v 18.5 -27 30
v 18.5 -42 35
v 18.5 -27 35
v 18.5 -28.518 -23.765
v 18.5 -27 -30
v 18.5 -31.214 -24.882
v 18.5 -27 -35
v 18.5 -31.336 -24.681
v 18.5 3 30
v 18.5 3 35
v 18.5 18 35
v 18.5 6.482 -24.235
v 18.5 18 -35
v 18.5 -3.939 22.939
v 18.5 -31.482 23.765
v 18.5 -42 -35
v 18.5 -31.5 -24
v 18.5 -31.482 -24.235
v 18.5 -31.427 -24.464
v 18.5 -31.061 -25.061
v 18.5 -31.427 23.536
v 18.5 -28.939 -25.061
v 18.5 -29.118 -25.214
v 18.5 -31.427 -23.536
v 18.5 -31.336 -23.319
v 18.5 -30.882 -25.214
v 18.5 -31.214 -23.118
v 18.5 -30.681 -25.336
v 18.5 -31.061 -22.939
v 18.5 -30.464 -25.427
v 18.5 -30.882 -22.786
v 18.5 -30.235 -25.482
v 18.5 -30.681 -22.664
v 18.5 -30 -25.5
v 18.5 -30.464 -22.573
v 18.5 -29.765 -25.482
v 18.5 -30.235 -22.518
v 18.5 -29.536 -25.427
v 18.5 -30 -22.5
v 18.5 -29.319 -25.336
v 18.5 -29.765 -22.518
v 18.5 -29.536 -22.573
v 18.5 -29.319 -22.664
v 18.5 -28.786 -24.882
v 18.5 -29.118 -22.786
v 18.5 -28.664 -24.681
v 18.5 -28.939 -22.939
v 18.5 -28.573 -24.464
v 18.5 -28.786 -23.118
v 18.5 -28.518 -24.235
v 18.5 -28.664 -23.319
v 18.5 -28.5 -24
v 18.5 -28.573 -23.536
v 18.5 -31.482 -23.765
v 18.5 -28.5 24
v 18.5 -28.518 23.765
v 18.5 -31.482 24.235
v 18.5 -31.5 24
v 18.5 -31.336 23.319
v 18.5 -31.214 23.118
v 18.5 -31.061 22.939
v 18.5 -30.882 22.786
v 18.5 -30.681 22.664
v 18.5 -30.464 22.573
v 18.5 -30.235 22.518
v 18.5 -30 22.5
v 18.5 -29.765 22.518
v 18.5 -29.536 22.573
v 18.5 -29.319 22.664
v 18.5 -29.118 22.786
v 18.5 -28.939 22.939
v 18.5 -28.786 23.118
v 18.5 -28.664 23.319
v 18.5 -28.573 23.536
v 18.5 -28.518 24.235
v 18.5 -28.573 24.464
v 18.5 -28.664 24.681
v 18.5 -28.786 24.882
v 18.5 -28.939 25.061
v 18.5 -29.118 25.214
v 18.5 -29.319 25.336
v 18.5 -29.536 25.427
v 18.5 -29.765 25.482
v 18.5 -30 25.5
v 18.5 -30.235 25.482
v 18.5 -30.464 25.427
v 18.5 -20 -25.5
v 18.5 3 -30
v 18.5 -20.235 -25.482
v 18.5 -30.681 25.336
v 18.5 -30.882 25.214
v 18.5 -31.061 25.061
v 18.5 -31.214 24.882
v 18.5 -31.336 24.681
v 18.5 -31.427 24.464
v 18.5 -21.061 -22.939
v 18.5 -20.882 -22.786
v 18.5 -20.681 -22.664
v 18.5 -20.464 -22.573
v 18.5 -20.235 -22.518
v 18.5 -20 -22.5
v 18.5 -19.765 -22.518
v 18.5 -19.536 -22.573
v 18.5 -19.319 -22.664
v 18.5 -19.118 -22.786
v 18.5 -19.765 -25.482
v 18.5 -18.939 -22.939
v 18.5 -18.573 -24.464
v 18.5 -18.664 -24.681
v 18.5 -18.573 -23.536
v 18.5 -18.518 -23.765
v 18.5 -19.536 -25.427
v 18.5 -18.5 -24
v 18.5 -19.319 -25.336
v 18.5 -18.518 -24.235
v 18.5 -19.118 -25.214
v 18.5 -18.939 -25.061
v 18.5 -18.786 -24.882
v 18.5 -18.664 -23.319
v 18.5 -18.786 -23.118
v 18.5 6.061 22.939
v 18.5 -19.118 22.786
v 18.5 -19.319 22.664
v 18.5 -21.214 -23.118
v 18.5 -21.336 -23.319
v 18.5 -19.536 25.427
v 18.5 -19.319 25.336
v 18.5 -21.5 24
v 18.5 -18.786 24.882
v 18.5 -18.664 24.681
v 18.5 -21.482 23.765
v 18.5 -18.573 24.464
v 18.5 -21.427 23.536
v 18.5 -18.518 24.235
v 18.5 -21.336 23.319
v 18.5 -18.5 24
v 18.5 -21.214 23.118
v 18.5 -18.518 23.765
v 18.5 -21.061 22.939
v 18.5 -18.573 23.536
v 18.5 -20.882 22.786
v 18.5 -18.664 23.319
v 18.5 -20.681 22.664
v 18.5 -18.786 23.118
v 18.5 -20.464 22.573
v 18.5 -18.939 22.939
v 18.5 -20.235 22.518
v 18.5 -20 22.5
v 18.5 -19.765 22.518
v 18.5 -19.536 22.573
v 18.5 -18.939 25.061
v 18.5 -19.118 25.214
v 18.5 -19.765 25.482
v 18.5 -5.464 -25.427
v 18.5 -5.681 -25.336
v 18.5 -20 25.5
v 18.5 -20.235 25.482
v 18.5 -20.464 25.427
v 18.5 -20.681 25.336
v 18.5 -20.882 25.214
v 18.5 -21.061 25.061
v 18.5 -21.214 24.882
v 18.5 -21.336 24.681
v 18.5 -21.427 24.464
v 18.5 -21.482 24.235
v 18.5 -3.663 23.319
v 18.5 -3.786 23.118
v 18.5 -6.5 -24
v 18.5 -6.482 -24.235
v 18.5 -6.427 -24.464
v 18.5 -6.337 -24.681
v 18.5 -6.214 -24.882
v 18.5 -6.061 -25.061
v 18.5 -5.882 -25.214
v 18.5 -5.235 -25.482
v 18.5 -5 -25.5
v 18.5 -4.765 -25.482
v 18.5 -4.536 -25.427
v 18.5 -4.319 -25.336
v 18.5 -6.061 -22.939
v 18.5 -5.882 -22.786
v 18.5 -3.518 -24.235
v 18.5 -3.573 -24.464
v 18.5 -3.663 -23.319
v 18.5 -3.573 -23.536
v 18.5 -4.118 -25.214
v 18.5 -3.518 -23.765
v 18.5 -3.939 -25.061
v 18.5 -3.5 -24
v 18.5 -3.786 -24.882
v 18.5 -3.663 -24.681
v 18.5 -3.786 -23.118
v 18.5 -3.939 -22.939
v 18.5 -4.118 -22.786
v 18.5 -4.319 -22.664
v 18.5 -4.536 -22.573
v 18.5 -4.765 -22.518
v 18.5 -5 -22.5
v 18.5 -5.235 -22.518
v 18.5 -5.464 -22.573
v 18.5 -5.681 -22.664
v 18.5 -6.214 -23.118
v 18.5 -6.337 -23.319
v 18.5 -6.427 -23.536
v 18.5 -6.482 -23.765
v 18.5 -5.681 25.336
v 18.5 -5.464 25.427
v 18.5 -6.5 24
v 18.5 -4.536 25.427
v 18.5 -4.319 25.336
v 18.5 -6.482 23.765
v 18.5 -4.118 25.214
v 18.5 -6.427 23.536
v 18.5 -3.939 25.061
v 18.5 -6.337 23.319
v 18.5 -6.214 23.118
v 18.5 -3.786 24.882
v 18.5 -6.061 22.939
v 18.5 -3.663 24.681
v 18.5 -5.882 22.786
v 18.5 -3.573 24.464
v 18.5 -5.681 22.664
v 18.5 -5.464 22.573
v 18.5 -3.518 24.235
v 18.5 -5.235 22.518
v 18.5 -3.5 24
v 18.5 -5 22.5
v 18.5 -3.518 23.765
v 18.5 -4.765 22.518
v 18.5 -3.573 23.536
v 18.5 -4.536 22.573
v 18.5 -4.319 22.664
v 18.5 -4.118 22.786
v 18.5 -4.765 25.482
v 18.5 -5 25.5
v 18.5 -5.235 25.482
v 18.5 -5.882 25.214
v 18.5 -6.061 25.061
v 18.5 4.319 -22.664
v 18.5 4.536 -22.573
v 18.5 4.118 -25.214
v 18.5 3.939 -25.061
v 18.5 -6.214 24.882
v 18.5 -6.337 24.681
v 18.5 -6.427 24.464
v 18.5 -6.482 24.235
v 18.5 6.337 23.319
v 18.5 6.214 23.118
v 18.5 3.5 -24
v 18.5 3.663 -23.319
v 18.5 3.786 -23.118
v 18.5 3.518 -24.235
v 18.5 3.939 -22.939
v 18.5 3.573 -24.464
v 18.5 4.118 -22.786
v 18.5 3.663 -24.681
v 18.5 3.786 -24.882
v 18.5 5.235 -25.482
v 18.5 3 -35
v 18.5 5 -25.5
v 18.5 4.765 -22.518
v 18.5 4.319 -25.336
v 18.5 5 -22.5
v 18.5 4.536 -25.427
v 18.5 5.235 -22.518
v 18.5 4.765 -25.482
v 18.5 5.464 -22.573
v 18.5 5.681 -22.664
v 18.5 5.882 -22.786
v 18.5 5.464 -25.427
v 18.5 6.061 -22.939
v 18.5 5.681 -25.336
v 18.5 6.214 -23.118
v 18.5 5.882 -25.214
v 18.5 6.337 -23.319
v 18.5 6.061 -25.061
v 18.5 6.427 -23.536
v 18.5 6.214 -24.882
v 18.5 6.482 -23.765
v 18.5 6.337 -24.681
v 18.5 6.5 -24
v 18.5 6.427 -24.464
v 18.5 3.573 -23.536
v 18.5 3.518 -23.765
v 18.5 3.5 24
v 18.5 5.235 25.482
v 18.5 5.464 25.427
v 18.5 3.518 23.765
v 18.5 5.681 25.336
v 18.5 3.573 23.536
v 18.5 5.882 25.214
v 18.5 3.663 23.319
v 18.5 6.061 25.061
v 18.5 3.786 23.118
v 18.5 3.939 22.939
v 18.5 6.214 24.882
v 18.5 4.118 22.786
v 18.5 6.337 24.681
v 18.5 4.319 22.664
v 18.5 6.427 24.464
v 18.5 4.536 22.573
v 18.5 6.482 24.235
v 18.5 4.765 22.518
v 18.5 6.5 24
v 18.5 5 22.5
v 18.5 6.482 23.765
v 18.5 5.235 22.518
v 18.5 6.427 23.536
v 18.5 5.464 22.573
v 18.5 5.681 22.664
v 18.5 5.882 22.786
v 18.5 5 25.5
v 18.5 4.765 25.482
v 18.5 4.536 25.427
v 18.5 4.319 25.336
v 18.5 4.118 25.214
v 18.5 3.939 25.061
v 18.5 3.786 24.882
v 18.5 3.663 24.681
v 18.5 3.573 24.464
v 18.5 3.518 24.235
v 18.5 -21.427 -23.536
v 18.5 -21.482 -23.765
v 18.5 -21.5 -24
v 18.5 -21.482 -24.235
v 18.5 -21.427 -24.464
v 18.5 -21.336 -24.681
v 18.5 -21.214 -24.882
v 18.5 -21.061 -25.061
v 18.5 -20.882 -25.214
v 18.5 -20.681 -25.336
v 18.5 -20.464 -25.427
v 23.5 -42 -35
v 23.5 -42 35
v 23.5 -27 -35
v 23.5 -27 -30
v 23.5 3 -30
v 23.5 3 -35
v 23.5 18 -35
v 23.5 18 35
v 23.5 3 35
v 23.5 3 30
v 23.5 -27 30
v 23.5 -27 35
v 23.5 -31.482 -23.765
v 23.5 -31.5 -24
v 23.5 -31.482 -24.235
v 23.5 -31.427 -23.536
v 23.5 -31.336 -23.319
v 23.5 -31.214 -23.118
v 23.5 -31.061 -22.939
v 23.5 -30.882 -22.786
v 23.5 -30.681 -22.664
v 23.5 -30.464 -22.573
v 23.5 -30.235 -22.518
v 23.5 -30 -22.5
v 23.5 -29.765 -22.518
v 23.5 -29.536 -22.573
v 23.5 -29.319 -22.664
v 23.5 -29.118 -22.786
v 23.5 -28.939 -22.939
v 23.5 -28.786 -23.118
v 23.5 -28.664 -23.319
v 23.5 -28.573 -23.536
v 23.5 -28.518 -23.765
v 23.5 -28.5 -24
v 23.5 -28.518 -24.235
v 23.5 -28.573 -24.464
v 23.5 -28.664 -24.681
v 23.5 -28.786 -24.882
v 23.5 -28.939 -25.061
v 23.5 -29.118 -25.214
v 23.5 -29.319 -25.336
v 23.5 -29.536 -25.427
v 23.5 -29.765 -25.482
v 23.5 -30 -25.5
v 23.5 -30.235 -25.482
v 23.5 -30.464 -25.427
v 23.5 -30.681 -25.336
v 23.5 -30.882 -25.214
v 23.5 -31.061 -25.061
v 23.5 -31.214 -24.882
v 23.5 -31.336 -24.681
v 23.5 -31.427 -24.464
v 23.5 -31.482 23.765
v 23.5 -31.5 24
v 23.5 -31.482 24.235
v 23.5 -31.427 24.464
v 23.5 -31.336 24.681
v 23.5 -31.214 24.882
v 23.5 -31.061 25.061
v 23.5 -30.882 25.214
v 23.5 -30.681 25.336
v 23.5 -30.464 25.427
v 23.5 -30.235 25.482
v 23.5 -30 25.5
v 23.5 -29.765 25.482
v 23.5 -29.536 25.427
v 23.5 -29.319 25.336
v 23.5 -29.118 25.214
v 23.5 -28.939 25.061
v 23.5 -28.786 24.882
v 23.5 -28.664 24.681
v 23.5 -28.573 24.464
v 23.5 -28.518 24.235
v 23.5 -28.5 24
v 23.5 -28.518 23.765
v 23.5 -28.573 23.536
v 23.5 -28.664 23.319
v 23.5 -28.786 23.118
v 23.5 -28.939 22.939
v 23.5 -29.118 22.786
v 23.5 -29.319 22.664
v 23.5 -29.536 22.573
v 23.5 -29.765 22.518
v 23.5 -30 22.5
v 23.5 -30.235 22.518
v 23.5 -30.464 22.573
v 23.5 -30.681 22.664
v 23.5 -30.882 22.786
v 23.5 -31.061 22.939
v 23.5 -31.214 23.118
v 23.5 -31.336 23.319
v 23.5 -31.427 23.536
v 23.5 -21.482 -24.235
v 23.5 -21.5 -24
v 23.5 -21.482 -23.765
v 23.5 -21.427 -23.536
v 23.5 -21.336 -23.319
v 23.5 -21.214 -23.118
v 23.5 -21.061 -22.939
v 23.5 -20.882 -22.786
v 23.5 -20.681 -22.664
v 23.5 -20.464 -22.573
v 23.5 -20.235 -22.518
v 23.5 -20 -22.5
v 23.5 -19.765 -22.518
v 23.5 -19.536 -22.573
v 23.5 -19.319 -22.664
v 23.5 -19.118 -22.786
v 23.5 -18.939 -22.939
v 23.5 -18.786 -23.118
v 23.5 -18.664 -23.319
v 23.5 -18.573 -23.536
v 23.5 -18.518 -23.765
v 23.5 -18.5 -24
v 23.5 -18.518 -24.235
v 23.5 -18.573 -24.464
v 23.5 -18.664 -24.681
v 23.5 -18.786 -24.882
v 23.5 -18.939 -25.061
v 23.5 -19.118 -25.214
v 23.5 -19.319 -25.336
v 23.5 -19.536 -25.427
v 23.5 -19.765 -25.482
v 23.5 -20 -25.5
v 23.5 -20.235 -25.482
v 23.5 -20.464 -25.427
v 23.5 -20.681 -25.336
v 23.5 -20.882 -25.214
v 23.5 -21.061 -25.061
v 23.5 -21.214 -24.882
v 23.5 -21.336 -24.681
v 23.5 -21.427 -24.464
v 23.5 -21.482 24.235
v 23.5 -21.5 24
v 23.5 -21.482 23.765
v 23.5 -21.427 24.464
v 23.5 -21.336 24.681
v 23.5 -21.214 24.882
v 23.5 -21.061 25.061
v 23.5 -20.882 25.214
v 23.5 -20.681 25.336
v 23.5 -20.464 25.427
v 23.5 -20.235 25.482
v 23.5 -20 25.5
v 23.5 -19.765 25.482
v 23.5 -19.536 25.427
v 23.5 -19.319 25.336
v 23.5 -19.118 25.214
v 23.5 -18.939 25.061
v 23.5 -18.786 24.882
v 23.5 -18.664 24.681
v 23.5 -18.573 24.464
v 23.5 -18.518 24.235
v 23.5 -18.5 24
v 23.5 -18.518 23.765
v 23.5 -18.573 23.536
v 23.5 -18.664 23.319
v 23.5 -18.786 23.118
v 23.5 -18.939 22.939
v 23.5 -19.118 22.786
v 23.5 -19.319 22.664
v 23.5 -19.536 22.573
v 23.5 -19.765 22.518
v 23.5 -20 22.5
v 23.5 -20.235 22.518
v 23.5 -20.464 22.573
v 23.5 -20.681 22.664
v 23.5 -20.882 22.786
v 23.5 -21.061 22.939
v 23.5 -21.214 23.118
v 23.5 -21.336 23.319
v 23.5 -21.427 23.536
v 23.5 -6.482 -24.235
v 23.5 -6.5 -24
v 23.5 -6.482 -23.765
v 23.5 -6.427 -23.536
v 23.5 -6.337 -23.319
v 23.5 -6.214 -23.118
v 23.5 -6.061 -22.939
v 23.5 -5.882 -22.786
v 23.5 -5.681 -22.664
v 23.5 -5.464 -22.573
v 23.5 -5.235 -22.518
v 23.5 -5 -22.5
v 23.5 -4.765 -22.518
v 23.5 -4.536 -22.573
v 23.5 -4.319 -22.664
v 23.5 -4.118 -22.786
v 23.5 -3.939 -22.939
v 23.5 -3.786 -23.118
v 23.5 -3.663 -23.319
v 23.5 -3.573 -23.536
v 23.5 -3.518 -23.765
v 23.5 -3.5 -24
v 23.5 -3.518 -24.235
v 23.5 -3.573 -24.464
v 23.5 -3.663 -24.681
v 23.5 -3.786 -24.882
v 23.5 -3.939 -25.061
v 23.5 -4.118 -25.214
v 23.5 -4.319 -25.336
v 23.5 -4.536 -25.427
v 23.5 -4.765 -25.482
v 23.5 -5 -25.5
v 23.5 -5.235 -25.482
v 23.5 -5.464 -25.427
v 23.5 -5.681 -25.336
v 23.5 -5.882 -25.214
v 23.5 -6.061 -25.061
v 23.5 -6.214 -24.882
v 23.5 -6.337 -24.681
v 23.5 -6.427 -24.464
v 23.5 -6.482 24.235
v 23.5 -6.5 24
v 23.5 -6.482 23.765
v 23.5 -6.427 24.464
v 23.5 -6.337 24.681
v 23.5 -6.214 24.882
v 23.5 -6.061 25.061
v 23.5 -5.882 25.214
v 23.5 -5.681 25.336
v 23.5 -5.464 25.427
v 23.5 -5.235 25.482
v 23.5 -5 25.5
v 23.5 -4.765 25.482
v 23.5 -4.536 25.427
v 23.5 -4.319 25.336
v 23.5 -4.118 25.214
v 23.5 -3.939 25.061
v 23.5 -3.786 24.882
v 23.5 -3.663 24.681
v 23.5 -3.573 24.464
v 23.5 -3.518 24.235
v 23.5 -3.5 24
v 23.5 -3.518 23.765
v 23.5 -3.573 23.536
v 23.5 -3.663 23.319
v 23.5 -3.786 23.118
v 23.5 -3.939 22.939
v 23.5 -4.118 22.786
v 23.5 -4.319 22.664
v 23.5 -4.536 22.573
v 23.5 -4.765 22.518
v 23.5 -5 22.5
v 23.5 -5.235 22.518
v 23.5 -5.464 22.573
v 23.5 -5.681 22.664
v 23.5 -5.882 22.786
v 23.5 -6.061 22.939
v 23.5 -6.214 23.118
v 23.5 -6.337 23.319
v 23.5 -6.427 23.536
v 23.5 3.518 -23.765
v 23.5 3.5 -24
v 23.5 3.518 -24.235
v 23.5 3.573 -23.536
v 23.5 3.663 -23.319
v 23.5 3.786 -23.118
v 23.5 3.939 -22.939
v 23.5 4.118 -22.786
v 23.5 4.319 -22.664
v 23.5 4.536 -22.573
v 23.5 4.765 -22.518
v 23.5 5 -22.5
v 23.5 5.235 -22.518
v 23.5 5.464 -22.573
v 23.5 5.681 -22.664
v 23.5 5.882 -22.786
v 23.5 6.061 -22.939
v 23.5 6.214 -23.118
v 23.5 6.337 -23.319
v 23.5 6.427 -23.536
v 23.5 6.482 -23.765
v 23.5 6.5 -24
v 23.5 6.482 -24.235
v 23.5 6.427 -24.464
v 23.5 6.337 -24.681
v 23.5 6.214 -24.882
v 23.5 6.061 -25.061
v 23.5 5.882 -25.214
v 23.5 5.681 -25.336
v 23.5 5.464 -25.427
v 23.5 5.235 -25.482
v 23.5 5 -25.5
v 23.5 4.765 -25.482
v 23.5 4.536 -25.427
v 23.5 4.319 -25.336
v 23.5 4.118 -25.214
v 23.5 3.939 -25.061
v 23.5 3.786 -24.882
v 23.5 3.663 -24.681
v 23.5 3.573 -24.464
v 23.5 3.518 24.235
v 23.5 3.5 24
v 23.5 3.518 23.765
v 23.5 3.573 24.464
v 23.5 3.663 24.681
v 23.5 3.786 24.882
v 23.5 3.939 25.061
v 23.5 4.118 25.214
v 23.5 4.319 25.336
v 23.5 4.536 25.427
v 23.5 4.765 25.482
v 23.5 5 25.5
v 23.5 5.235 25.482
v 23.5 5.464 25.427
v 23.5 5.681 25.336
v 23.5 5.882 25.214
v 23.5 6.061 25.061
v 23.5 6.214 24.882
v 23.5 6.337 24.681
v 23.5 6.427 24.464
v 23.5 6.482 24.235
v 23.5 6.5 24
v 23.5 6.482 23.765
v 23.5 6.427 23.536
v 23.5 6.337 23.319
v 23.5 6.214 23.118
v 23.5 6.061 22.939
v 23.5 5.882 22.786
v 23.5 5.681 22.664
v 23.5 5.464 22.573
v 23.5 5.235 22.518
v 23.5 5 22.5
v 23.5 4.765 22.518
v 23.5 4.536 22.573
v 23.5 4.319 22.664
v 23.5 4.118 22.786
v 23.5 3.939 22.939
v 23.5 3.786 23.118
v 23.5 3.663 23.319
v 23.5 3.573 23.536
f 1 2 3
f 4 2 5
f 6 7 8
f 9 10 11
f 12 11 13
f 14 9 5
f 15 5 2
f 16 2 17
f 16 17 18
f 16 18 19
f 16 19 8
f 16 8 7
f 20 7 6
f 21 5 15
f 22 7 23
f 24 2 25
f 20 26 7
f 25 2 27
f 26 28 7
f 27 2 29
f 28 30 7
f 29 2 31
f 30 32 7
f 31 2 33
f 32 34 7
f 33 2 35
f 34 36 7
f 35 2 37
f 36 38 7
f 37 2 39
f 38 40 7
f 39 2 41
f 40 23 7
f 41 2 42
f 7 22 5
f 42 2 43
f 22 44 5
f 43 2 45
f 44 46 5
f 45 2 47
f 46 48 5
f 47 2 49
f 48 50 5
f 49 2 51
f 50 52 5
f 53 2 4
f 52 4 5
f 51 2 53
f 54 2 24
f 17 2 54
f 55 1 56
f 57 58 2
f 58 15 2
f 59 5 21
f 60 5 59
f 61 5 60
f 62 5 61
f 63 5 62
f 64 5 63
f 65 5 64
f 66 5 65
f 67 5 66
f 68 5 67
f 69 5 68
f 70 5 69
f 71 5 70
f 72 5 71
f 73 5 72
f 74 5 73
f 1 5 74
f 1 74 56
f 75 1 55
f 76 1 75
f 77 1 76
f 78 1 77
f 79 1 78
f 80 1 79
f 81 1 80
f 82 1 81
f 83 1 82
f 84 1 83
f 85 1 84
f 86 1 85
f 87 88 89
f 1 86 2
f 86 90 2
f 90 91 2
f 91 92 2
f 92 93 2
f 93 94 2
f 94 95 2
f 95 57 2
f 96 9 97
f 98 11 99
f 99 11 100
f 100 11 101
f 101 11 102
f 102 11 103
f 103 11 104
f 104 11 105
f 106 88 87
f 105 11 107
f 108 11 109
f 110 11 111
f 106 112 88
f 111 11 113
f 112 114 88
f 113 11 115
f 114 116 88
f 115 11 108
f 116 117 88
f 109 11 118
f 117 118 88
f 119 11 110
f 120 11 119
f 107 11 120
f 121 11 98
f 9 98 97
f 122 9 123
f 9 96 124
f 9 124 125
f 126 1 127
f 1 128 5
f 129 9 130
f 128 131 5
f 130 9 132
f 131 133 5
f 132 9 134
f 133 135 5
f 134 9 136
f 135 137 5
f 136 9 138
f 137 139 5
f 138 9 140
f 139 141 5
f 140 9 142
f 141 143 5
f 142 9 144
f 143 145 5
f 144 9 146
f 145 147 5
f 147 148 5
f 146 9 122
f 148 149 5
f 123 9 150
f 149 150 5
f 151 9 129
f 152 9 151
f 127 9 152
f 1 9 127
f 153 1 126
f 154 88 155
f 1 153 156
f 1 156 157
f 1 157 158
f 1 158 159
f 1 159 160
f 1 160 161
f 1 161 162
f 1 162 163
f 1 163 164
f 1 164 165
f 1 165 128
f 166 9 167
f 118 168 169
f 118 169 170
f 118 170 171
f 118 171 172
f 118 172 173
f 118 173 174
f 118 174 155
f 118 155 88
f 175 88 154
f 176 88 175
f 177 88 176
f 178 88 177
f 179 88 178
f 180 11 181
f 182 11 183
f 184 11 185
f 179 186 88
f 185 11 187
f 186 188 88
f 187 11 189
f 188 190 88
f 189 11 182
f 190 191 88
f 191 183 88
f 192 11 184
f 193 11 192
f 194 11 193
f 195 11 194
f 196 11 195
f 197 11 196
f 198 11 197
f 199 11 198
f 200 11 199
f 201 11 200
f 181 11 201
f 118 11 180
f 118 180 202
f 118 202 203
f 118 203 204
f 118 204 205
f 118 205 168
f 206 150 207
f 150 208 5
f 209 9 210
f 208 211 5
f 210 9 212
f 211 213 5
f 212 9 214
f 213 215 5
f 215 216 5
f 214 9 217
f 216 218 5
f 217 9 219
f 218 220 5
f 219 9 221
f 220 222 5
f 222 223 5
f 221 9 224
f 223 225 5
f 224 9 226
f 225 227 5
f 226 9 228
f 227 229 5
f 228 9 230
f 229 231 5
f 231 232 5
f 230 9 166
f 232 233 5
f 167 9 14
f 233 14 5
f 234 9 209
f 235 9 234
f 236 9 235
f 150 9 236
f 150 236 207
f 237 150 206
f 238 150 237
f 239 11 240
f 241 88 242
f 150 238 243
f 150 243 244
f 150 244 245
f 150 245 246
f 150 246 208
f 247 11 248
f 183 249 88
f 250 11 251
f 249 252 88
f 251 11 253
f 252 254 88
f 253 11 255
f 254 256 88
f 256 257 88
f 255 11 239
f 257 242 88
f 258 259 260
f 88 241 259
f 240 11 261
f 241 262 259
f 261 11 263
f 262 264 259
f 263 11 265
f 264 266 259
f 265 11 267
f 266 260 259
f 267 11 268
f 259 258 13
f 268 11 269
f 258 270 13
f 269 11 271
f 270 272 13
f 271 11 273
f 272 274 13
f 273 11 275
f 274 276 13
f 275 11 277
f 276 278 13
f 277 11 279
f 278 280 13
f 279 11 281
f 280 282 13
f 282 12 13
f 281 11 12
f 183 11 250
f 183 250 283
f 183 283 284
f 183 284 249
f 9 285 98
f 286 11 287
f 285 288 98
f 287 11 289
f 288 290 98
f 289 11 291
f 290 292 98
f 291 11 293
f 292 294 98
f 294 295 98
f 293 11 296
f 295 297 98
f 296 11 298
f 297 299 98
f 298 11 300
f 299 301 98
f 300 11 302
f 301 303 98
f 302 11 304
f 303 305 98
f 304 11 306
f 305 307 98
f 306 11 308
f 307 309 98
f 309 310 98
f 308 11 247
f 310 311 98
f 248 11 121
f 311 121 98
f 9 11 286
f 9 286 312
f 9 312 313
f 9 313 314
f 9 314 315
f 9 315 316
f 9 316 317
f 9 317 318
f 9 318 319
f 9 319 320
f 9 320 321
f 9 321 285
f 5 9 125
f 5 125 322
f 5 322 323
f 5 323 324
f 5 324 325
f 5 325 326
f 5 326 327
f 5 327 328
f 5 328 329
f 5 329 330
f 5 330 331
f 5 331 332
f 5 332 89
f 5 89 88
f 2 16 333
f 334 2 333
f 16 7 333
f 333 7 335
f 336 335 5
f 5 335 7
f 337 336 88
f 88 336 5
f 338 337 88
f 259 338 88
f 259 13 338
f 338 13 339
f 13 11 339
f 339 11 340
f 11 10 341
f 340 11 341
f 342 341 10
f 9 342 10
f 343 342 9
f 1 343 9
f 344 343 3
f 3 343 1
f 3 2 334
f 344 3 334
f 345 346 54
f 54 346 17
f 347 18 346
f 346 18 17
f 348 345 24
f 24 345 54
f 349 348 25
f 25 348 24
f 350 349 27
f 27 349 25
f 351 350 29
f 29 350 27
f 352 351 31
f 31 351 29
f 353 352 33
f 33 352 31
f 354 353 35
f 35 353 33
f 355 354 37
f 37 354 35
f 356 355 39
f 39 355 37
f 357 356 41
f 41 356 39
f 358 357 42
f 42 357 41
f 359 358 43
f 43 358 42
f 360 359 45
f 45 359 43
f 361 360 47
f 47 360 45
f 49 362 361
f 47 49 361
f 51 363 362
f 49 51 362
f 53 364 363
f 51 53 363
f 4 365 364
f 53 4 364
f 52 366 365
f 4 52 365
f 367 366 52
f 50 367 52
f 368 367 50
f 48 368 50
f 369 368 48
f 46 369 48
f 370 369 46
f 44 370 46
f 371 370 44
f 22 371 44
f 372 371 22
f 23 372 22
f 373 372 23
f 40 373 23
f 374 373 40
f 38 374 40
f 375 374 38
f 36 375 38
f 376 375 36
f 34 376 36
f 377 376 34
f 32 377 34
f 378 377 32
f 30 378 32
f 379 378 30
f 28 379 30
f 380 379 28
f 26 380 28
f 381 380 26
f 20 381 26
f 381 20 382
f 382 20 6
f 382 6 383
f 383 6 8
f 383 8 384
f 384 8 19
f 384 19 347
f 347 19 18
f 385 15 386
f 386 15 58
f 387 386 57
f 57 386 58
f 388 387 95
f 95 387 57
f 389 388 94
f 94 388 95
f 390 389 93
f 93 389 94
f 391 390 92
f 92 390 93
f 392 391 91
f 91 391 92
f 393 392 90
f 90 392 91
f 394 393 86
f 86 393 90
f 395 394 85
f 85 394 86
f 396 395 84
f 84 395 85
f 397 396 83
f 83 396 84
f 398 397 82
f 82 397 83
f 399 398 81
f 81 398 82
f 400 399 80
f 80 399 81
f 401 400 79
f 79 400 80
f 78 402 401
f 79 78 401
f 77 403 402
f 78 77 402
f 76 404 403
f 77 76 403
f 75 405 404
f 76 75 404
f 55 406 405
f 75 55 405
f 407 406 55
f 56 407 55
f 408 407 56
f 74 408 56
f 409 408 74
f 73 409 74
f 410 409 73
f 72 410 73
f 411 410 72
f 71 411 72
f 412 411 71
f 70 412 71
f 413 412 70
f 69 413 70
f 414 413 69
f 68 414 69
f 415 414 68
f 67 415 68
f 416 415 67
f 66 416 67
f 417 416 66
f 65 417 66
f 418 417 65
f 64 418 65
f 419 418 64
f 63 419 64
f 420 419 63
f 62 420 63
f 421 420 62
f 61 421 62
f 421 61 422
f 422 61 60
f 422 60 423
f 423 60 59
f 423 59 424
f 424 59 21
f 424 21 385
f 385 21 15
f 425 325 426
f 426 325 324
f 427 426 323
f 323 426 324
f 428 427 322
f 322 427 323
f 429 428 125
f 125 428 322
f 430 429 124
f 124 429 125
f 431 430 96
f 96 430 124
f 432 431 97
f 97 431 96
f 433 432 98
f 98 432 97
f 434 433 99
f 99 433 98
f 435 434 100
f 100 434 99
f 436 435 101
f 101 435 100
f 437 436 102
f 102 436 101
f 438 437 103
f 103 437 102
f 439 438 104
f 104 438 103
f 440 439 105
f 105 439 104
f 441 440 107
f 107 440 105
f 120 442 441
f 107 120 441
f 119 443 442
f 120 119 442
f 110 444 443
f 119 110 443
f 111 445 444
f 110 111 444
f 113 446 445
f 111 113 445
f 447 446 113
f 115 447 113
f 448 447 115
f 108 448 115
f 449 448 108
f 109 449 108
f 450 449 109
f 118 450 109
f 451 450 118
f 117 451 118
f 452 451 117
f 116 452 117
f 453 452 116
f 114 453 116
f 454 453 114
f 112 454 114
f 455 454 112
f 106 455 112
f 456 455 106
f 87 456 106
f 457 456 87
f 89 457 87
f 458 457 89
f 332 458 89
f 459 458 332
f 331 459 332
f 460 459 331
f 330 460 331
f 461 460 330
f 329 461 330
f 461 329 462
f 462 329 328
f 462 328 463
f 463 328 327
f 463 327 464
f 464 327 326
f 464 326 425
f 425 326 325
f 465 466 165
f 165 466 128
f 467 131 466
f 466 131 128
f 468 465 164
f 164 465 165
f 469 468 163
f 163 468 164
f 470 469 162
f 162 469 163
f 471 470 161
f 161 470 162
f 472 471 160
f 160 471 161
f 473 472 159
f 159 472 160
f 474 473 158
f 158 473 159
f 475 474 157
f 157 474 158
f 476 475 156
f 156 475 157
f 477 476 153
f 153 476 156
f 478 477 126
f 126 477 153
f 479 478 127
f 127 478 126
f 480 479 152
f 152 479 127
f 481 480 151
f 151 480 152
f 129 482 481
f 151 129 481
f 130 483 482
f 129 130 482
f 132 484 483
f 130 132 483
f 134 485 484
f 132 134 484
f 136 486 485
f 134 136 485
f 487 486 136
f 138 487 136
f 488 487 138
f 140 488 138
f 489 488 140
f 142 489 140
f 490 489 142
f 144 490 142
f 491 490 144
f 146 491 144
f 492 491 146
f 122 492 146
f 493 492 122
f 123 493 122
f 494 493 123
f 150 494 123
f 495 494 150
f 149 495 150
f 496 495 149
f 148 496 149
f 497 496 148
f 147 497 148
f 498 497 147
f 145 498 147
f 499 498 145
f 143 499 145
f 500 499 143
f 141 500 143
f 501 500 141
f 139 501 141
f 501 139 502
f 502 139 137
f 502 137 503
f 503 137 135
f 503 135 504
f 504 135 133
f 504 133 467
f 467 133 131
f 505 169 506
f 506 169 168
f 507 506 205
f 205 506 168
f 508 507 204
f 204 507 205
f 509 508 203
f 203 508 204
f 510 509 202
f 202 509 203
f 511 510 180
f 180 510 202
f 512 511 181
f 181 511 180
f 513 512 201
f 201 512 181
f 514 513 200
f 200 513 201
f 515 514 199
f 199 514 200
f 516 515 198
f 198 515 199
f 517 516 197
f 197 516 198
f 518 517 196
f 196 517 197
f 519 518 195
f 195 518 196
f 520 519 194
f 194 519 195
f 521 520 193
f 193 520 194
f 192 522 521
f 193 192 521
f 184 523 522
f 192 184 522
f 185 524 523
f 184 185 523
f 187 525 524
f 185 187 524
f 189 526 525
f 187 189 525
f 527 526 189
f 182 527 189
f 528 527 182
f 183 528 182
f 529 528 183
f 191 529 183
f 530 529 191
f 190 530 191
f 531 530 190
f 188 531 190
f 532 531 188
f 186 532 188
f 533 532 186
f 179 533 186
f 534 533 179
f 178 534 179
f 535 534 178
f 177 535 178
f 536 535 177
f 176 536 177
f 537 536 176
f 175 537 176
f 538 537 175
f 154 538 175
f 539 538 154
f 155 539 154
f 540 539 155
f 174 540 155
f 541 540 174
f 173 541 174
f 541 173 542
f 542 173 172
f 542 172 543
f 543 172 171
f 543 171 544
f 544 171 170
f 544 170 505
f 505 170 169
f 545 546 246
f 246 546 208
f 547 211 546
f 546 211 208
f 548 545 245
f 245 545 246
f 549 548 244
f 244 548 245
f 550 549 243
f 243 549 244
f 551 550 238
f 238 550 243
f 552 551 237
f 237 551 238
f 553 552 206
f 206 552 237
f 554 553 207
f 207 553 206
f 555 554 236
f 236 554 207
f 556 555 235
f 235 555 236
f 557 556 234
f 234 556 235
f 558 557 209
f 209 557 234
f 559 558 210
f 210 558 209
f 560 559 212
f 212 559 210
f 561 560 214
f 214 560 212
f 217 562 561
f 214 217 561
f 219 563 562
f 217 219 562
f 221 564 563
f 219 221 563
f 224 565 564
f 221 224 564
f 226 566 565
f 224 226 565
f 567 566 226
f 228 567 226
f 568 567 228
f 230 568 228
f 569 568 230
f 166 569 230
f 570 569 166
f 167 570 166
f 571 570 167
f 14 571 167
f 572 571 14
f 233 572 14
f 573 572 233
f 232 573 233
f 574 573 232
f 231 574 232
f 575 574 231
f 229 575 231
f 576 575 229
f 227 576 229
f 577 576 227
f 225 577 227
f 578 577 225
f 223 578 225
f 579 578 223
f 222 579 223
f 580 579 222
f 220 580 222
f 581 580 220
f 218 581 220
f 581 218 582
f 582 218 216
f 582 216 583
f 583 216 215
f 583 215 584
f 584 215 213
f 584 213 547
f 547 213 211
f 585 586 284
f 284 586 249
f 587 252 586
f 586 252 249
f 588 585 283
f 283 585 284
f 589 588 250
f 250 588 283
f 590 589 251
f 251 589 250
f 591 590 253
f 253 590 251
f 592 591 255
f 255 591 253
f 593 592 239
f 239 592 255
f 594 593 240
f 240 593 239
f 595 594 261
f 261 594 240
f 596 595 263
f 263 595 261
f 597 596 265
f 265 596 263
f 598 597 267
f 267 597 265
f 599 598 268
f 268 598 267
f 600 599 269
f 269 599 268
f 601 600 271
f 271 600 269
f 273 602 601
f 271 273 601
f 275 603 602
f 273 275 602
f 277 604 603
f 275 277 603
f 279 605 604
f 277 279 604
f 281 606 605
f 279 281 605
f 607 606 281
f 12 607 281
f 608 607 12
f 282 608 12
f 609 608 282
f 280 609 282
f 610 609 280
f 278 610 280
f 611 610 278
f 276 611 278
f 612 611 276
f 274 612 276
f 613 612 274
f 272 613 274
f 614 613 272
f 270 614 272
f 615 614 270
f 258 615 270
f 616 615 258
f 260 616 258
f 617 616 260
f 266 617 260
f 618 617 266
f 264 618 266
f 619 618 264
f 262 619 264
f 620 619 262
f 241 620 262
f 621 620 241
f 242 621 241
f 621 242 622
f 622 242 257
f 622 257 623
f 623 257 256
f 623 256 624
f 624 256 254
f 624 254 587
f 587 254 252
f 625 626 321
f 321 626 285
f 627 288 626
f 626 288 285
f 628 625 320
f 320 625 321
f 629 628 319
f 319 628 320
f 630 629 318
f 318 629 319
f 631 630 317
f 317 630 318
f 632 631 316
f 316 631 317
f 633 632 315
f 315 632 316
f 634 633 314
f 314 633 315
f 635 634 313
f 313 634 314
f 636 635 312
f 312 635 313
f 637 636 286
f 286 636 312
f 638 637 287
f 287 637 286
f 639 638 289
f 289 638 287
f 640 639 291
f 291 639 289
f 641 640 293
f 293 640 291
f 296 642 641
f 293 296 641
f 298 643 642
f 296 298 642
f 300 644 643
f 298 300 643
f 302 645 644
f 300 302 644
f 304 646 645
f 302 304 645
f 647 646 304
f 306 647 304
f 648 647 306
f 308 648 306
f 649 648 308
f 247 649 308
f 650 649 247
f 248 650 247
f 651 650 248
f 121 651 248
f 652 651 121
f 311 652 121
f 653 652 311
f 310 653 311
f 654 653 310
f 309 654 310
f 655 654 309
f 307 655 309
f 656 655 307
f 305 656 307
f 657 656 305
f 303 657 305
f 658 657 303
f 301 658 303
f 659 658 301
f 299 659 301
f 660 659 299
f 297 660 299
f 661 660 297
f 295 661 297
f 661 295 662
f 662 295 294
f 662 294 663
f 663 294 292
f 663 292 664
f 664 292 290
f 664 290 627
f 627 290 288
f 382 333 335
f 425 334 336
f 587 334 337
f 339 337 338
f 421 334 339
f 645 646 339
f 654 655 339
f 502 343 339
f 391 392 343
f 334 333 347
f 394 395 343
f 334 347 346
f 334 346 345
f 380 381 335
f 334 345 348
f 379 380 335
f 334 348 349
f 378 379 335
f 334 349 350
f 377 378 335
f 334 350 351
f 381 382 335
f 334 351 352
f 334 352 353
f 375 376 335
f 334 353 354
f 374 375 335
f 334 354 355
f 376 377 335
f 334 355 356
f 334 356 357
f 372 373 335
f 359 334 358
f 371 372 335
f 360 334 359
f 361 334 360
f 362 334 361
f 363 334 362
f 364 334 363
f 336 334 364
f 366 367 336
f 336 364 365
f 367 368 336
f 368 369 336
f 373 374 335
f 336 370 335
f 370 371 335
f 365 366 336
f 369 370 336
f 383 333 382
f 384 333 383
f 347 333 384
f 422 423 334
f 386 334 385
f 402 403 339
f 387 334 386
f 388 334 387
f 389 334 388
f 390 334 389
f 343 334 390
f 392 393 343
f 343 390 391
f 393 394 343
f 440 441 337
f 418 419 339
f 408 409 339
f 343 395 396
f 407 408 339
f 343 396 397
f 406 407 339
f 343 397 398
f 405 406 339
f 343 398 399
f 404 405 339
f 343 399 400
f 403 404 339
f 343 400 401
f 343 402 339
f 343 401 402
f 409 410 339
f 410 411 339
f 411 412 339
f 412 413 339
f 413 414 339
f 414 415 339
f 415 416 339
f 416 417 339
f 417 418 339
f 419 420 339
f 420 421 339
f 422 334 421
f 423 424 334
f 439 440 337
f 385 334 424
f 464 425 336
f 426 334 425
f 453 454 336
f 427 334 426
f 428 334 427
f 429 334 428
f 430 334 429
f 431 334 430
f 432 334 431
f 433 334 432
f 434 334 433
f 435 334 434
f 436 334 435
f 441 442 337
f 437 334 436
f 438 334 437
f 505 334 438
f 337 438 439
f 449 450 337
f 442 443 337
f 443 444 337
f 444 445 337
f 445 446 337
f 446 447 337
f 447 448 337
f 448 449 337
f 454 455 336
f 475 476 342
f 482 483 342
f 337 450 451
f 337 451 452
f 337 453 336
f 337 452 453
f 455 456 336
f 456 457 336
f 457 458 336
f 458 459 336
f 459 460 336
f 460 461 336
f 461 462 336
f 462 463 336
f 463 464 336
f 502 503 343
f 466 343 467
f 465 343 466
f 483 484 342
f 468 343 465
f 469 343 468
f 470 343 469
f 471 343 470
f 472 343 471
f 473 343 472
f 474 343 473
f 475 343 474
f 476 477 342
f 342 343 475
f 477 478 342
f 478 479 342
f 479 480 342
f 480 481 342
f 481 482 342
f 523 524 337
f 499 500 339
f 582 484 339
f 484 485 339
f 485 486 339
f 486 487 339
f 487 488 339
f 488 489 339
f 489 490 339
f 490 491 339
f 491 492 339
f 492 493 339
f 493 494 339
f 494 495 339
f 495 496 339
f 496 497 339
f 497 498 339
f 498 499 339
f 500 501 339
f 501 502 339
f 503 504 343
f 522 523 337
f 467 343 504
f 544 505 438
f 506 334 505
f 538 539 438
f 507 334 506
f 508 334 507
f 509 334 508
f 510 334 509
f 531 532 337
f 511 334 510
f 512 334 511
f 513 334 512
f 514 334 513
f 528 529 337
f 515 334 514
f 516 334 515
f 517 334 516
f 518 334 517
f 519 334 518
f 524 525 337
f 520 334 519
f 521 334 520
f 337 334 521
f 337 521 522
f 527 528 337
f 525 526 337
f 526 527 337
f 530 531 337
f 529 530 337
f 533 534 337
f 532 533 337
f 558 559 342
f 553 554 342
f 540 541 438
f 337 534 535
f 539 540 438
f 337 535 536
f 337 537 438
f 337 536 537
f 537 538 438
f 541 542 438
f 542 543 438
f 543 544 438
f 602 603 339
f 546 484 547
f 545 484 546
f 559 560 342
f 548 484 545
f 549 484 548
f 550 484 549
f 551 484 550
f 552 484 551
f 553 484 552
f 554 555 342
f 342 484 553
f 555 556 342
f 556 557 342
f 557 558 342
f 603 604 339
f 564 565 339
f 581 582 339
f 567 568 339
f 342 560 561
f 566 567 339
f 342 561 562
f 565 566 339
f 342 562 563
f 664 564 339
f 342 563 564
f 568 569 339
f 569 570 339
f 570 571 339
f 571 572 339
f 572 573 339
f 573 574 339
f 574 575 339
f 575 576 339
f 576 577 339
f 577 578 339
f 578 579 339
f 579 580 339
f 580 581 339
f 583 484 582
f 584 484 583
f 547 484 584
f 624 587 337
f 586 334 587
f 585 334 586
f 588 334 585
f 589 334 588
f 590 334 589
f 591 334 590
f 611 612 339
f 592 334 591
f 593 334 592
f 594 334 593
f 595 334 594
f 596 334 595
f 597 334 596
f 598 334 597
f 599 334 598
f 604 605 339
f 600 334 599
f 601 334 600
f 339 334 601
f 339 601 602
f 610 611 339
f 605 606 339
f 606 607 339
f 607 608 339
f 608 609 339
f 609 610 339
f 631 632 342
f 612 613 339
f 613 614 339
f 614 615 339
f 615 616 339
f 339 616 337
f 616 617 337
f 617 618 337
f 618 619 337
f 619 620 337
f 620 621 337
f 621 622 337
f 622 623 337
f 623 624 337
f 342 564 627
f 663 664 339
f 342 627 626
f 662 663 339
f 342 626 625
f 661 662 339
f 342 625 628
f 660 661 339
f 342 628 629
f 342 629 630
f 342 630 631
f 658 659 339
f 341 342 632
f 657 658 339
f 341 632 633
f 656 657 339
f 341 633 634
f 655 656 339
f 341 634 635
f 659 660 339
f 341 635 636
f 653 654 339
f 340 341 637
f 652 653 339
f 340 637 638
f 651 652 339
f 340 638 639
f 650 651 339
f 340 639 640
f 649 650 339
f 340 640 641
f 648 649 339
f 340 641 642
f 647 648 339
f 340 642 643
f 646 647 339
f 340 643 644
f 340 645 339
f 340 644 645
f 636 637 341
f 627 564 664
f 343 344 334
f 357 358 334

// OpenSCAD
//Soporte para los motores

difference(){
union(){
translate([21,-12,0])
cube([5,60,70], center=true);

}

//Enlace a tapa superior e inferior

translate([21,-12,32.5])
rotate([0,0,0])
#cube([5,30,5], center=true);

translate([21,-12,-32.5])
rotate([0,0,0])
#cube([5,30,5], center=true);


//Agujeros
translate([0,5,24])
rotate([0,90,0])
cylinder(r=3/2, h=100, $fn=40, center=true);
translate([0,-5,24])
rotate([0,90,0])
cylinder(r=3/2, h=100, $fn=40, center=true);
translate([0,-30,24])
rotate([0,90,0])
cylinder(r=3/2, h=100, $fn=40, center=true);
translate([0,-20,24])
rotate([0,90,0])
cylinder(r=3/2, h=100, $fn=40, center=true);

translate([0,5,-24])
rotate([0,90,0])
cylinder(r=3/2, h=100, $fn=40, center=true);
translate([0,-5,-24])
rotate([0,90,0])
cylinder(r=3/2, h=100, $fn=40, center=true);
translate([0,-30,-24])
rotate([0,90,0])
cylinder(r=3/2, h=100, $fn=40, center=true);
translate([0,-20,-24])
rotate([0,90,0])
cylinder(r=3/2, h=100, $fn=40, center=true);
}
